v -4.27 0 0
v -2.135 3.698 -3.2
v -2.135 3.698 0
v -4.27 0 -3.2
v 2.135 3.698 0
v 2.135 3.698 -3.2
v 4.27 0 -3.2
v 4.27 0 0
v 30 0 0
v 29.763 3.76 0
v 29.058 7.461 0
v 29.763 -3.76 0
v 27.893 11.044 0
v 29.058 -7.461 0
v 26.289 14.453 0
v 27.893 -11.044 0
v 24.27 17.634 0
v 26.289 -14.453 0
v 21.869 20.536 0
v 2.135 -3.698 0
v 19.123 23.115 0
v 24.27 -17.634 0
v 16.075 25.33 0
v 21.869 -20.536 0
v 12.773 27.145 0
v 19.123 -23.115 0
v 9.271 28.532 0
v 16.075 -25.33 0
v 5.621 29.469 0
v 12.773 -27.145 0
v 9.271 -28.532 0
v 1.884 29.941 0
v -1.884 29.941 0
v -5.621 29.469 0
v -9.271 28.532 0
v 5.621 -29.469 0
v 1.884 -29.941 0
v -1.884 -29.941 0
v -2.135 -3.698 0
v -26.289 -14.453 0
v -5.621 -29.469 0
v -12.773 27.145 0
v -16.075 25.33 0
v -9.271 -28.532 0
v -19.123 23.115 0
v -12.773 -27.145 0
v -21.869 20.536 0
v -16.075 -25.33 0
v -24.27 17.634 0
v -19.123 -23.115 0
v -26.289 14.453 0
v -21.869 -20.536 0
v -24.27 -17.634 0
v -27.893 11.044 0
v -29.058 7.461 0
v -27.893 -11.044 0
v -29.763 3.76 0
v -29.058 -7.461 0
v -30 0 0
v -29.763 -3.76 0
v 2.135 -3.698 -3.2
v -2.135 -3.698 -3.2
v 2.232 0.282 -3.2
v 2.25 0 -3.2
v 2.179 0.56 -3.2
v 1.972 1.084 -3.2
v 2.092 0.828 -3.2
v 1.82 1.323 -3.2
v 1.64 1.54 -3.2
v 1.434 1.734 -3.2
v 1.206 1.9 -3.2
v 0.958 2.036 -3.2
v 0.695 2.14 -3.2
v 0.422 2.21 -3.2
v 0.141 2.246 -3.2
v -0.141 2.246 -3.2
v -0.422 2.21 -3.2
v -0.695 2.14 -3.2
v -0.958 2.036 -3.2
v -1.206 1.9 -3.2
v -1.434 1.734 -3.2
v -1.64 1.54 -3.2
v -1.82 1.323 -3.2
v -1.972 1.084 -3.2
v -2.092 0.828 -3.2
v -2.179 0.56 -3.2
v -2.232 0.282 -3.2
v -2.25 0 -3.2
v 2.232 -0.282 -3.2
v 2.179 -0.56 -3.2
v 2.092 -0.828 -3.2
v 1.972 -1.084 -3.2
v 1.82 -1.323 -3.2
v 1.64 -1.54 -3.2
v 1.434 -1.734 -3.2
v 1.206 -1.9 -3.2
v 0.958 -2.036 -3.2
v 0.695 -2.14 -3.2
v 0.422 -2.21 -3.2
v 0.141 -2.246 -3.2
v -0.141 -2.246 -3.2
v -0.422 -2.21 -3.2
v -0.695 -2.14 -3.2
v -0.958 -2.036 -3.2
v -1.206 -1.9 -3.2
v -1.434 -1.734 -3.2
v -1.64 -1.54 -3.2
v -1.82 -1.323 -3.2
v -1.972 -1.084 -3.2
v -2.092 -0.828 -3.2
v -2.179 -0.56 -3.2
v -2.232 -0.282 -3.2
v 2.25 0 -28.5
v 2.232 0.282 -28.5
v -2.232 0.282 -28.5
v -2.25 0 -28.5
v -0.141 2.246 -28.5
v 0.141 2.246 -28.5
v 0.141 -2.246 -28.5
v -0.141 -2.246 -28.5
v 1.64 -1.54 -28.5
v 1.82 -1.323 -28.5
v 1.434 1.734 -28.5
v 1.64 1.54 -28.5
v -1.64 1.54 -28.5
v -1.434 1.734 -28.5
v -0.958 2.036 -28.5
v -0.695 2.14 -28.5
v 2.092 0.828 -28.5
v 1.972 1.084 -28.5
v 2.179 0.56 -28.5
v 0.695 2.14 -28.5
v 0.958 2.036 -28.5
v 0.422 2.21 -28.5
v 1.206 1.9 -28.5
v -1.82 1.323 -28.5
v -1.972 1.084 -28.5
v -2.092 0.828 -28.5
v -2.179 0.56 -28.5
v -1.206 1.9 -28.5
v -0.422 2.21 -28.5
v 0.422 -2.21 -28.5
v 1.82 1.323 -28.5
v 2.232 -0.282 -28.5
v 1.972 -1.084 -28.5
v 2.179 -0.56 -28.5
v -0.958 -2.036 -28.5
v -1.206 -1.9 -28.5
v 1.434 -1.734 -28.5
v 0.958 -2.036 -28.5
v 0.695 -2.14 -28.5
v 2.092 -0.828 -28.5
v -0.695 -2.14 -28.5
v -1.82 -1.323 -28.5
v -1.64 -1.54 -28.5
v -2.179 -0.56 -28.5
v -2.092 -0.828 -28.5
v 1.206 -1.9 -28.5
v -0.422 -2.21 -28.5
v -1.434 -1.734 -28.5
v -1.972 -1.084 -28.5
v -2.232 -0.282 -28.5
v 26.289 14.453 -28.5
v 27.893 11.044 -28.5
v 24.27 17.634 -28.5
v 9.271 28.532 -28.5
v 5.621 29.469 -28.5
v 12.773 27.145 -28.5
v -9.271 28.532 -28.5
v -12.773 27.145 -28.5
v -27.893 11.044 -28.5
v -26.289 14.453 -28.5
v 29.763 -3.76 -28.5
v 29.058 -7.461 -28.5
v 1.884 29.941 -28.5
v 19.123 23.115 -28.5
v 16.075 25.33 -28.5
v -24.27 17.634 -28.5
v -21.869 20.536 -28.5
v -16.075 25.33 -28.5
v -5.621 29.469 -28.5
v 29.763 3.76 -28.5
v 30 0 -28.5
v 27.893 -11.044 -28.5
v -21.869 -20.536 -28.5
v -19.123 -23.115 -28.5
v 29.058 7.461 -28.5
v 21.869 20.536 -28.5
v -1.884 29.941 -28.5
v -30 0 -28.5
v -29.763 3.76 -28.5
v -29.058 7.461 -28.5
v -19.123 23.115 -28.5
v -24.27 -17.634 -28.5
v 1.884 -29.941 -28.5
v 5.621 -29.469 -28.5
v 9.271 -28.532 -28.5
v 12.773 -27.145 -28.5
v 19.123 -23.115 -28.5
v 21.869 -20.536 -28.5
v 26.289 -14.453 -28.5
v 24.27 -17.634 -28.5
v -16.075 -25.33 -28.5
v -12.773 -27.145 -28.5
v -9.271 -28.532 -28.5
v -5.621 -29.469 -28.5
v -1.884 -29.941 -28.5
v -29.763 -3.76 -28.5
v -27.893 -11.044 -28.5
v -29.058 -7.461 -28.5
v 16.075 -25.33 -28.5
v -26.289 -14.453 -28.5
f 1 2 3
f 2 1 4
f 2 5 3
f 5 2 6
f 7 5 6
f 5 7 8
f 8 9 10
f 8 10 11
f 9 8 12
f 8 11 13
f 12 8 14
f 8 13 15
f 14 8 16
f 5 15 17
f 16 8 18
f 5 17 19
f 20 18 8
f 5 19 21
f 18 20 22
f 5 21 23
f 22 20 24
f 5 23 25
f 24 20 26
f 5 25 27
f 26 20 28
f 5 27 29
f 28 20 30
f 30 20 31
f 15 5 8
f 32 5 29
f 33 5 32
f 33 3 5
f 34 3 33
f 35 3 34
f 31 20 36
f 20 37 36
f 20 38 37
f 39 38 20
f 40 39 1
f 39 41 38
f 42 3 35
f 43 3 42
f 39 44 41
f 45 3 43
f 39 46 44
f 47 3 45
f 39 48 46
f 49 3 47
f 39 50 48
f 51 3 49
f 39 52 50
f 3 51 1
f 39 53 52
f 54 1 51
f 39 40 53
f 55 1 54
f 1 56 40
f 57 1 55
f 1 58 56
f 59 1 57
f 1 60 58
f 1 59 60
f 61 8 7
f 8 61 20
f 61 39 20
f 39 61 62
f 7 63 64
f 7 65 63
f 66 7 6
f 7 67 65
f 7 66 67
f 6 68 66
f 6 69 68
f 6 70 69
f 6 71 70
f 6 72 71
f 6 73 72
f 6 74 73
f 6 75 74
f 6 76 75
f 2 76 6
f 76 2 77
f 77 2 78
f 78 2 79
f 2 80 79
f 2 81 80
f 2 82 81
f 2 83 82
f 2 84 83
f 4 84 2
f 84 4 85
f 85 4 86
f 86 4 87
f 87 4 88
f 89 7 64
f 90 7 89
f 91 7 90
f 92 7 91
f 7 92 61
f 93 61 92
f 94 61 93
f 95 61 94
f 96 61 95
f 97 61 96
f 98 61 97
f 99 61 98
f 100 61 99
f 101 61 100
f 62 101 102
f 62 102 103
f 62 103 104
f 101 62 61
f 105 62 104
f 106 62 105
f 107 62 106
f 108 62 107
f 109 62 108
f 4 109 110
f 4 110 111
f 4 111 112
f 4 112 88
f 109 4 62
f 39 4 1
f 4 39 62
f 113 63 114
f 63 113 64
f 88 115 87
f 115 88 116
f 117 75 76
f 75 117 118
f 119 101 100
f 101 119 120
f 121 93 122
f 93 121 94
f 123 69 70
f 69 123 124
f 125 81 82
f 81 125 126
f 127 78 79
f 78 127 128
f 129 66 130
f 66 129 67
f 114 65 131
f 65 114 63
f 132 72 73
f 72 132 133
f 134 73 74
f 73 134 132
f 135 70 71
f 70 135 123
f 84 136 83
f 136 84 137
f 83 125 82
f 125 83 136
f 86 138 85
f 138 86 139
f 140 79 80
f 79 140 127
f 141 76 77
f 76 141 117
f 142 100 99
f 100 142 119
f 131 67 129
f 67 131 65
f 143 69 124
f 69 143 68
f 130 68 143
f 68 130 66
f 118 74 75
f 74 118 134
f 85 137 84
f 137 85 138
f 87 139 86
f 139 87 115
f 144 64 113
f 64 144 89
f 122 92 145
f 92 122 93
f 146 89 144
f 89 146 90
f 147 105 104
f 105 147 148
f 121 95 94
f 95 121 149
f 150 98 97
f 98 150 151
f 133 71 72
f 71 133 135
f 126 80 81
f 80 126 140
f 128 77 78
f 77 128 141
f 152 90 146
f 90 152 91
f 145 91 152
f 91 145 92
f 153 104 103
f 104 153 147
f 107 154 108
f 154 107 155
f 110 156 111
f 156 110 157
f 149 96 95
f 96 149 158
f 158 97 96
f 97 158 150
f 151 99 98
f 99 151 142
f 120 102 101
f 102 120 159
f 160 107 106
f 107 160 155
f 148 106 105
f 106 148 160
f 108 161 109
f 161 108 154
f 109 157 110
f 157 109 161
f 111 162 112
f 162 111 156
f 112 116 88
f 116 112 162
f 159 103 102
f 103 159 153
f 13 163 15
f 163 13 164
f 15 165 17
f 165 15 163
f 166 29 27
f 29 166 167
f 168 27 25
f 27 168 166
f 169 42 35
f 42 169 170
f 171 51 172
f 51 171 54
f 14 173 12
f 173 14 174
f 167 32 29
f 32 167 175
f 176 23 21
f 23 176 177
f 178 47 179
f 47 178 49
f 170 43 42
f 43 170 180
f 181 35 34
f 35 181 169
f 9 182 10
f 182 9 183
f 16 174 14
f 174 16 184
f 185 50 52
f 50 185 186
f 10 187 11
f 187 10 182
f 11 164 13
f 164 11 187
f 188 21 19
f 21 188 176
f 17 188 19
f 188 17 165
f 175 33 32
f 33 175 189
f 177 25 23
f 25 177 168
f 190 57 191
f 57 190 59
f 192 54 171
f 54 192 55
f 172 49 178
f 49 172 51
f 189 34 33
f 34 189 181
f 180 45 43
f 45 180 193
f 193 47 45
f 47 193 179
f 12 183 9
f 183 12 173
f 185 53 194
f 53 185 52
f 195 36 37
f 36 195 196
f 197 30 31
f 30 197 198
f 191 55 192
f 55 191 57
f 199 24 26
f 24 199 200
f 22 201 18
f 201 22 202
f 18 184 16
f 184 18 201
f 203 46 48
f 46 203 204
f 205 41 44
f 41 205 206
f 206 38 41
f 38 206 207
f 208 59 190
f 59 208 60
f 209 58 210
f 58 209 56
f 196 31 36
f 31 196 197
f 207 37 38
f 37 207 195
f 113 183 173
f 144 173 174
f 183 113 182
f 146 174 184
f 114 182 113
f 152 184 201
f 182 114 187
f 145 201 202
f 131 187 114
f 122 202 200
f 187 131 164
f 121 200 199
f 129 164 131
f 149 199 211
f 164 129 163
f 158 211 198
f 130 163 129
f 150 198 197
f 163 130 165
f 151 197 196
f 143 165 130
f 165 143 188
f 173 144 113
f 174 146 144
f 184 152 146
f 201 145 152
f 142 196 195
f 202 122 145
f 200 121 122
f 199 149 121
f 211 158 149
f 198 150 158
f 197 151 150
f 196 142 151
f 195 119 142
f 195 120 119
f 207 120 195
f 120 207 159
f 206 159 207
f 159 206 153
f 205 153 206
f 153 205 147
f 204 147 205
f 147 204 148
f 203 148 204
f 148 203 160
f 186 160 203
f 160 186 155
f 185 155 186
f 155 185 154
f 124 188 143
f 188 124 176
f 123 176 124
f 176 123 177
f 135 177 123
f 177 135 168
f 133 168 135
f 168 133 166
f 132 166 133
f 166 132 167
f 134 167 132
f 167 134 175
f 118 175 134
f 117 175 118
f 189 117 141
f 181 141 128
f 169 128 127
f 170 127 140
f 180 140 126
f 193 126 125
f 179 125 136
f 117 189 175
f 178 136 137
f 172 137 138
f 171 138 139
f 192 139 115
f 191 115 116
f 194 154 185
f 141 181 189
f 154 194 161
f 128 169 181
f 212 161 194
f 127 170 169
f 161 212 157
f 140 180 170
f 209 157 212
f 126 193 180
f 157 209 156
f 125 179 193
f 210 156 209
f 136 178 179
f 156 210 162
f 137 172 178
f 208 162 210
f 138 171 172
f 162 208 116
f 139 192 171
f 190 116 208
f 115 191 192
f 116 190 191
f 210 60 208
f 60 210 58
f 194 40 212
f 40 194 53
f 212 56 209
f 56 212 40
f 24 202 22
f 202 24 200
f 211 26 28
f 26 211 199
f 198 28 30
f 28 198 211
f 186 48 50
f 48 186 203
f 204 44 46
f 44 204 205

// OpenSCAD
$fn = 50;


difference() {
	union() {
		translate(v = [0, 0, -28.5000000000]) {
			cylinder(h = 28.5000000000, r = 30.0000000000);
		}
	}
	union() {
		translate(v = [0, 0, 0]) {
			rotate(a = [0, 0, 0]) {
				difference() {
					union() {
						translate(v = [0, 0, -3.2000000000]) {
							linear_extrude(height = 3.2000000000) {
								polygon(points = [[4.2698000000, 0.0000000000], [2.1349000000, 3.6977552691], [-2.1349000000, 3.6977552691], [-4.2698000000, 0.0000000000], [-2.1349000000, -3.6977552691], [2.1349000000, -3.6977552691]]);
							}
						}
					}
					union();
				}
			}
		}
		#translate(v = [0, 0, -100.0000000000]) {
			cylinder(h = 200, r = 2.2500000000);
		}
	}
}
